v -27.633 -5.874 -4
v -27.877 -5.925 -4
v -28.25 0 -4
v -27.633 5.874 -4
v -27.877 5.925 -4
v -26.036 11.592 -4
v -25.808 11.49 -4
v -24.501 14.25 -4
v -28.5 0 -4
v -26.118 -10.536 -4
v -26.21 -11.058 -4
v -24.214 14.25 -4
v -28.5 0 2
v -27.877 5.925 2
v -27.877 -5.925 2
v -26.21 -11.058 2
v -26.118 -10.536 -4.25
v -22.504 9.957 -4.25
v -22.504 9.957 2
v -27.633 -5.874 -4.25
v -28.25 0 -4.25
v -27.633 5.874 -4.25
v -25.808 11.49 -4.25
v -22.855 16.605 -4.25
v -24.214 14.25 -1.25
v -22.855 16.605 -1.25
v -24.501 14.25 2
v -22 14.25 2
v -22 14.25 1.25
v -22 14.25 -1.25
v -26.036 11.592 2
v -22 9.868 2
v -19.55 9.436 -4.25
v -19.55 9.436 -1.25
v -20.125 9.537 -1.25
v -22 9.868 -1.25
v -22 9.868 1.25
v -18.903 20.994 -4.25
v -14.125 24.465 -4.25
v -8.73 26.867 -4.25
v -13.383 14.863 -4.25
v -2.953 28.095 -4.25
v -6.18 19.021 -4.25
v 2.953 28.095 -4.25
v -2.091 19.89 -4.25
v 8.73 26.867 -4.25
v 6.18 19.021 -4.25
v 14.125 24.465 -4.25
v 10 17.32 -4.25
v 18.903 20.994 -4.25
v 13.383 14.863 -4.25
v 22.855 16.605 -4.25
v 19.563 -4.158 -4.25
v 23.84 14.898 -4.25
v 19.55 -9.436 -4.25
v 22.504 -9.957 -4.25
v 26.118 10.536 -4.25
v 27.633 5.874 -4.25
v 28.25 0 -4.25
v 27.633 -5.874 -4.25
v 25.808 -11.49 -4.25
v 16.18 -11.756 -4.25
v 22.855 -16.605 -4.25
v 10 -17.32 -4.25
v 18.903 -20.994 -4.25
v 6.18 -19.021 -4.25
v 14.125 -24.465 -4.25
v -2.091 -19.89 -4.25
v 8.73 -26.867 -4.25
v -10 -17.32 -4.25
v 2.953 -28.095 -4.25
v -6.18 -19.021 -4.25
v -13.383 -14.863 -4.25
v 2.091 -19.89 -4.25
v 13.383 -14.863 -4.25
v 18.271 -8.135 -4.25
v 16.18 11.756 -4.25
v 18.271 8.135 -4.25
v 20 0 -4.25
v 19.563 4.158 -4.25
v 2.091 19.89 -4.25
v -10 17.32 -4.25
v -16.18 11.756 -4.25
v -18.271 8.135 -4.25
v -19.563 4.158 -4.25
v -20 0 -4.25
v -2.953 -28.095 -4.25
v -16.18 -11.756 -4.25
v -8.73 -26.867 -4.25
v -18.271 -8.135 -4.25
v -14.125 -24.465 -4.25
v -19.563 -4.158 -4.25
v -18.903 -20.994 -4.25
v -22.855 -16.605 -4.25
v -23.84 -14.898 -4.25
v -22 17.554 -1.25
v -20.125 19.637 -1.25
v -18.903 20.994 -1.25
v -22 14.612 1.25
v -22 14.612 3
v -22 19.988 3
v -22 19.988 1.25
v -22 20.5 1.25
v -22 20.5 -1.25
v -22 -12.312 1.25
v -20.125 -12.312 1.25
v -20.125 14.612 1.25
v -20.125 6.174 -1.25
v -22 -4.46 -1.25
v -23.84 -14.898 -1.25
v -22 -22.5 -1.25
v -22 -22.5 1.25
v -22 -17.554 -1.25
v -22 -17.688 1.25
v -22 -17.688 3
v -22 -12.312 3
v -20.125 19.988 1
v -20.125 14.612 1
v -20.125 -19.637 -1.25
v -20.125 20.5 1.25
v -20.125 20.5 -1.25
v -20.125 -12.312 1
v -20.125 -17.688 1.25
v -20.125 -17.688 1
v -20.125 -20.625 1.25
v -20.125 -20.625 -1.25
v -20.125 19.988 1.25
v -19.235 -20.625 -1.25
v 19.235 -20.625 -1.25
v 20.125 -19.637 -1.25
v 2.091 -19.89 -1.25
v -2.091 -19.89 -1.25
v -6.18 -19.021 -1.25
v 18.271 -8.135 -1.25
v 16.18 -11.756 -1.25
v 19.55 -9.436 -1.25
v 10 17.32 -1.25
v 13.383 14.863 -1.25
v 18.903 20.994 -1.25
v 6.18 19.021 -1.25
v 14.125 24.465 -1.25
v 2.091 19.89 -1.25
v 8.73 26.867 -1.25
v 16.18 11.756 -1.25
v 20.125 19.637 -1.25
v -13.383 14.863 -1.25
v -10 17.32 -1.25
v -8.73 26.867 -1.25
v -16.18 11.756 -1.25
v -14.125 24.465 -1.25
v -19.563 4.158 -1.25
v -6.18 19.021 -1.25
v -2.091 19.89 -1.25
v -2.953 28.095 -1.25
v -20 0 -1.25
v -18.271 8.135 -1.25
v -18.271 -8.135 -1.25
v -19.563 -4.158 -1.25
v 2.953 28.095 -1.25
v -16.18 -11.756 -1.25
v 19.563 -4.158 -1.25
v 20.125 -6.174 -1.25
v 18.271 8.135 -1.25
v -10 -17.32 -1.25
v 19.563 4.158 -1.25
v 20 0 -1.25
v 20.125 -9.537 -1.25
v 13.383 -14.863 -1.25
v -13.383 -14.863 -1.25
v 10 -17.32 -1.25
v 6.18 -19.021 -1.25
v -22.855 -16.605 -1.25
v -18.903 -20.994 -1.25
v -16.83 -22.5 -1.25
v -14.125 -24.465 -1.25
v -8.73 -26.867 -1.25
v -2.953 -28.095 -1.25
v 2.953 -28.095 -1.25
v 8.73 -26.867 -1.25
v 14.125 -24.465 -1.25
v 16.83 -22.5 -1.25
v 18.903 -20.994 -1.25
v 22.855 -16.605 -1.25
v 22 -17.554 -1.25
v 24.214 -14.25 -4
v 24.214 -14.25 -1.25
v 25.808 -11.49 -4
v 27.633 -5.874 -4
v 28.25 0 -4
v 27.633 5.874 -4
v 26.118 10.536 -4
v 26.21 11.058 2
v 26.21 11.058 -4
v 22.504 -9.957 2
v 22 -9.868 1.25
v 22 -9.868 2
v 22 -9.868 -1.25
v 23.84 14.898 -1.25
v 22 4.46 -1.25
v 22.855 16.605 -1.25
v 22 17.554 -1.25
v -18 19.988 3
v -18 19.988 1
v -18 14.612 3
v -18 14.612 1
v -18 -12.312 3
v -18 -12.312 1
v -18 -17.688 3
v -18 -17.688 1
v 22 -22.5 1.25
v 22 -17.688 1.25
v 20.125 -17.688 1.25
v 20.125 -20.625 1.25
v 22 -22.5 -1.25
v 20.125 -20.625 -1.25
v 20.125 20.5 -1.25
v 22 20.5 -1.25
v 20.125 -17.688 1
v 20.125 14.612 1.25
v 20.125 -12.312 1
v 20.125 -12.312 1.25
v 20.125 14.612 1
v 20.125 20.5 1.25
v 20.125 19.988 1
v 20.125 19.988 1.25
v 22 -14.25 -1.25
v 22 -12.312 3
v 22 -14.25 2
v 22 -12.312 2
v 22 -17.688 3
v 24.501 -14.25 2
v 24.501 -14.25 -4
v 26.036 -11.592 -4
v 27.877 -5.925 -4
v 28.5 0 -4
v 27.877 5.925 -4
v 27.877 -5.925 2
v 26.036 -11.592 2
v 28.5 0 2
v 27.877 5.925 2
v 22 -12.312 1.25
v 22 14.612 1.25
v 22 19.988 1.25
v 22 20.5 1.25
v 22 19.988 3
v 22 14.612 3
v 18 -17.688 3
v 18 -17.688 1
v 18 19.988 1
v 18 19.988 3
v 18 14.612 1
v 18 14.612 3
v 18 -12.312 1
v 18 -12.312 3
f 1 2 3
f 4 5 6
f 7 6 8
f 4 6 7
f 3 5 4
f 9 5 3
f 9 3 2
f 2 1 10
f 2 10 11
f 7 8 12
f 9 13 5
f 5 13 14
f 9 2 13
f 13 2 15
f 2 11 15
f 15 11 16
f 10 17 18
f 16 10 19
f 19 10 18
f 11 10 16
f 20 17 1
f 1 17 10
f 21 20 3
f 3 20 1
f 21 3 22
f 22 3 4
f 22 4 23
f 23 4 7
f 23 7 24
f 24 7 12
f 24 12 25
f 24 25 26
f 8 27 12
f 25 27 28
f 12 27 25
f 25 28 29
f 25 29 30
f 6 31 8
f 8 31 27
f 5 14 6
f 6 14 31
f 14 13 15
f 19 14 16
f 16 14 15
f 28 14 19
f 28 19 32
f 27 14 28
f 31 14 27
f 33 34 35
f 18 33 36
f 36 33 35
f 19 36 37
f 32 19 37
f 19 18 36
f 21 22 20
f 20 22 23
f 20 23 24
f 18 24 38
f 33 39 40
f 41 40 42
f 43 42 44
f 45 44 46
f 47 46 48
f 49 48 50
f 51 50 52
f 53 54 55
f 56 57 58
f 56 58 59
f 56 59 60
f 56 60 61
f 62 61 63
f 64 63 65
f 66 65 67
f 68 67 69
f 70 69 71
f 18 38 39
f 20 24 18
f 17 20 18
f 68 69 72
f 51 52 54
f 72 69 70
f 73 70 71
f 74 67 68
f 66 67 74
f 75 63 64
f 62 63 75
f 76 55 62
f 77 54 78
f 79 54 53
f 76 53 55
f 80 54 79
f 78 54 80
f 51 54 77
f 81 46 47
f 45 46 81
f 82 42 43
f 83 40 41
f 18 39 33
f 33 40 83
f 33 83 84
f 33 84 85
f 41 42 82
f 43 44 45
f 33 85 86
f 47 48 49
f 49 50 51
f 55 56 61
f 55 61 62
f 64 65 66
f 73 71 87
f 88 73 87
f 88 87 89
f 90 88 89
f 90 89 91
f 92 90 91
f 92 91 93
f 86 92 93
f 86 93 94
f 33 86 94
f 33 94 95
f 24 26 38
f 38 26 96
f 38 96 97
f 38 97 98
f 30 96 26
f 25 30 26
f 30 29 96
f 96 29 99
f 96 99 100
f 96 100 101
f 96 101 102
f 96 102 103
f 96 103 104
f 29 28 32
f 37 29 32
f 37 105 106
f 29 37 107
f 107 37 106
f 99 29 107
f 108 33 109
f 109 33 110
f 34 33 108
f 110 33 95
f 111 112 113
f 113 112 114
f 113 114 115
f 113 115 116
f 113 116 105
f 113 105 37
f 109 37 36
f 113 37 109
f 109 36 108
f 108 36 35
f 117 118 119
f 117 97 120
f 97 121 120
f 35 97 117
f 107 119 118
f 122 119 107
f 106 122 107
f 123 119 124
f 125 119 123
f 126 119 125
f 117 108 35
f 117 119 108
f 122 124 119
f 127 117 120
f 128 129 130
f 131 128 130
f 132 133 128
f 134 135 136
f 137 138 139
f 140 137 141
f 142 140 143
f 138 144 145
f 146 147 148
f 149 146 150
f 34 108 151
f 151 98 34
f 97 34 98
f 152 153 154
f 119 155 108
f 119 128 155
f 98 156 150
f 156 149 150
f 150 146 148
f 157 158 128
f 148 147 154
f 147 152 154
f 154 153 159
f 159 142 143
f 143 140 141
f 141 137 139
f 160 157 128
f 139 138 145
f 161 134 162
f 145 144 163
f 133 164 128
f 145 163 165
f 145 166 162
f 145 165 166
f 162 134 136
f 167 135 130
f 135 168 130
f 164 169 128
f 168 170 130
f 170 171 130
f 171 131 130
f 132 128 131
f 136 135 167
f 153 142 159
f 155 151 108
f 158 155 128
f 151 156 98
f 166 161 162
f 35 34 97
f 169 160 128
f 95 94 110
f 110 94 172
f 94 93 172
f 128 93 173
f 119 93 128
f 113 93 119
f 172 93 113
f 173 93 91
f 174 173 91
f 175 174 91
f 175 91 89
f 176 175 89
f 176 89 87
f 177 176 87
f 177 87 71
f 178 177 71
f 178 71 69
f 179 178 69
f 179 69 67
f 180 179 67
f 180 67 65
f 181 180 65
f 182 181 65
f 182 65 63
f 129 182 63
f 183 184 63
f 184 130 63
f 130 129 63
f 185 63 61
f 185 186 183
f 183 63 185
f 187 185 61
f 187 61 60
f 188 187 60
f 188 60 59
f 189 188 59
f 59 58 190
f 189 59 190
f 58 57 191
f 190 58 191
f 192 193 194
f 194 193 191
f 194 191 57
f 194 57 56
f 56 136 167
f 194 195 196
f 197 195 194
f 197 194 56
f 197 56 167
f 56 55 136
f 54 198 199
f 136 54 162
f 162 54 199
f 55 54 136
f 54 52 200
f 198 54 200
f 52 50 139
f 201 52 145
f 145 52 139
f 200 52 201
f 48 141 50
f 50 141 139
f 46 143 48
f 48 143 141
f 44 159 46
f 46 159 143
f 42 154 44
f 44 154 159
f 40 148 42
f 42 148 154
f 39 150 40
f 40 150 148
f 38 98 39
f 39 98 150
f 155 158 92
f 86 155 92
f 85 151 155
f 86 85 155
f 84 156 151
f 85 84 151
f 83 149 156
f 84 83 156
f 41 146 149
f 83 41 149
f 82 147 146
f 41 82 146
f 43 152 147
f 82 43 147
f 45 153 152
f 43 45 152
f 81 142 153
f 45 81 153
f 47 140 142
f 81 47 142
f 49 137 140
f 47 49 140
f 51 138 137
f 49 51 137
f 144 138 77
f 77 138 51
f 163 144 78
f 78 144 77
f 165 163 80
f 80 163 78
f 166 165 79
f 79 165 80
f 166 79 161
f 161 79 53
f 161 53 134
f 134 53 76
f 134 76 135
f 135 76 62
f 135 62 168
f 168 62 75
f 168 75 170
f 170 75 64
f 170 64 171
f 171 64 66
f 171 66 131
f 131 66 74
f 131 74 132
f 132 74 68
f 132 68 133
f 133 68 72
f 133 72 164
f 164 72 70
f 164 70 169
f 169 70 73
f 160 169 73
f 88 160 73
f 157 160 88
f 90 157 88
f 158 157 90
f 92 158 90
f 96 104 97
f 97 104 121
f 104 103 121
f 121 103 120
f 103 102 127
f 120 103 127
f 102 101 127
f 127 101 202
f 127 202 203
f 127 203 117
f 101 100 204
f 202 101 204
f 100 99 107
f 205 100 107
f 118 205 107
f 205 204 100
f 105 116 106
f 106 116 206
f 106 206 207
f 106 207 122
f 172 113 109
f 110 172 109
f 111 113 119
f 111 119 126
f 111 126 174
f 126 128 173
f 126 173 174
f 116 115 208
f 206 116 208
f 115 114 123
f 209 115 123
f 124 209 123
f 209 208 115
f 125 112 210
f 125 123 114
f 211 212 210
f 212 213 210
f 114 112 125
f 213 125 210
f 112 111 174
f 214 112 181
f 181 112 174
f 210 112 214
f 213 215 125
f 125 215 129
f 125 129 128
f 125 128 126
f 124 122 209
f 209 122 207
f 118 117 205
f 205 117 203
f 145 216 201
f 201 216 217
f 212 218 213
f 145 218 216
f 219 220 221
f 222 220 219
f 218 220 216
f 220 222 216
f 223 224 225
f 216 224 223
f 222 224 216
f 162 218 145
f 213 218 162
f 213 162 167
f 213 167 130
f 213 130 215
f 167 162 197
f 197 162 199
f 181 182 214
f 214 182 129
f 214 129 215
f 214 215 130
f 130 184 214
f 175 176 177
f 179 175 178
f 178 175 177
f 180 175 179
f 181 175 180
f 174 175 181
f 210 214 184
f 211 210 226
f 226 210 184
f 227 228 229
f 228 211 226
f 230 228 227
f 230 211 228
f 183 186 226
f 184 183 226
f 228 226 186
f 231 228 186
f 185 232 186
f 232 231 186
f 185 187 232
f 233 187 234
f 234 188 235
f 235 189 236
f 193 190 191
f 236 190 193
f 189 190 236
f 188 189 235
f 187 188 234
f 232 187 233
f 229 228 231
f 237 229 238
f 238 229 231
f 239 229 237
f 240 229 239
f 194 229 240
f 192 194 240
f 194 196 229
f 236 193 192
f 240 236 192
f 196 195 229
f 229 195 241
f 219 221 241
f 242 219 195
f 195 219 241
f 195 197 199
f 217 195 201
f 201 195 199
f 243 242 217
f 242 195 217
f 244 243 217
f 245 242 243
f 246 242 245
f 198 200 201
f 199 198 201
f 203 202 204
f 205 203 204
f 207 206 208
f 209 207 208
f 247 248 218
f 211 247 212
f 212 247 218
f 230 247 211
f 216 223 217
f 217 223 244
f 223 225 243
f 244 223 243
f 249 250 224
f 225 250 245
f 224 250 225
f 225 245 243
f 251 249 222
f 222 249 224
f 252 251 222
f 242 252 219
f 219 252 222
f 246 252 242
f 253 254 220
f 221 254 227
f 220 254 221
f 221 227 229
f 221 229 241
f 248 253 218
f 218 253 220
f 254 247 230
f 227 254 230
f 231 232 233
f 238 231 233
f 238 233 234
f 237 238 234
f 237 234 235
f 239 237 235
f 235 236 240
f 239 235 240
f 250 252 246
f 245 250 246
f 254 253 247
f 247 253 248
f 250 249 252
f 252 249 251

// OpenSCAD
gap = 0.25;
slide_width = 40;
slide_depth = 2.5;
slide_height = 41;
holder_thickness = 2;

holder_width = slide_width + ( holder_thickness * 2 );
holder_height = slide_height + holder_thickness;

retainer_height = holder_height / 8;

bokeh_outer_d = 57;
bokeh_outer_fudge = 0.25;
bokeh_outer_r = bokeh_outer_d / 2;
bokeh_inner_r = slide_width / 2;
bokeh_outer_h = 3;
bokeh_body_thickness = 3;



module slide() {
	color([0,0,1])cube([slide_width + gap, slide_height + gap, slide_depth + gap], center = true);
}


module slide_holder() {
	color([0,1,0])
	difference() {
		translate([0,-holder_thickness / 2, 0])cube([holder_width, holder_height, slide_depth], center = true);
		slide();
	}
	translate([0,17.3,0]) slide_retainer();
	translate([0,-15,0]) slide_retainer();
}

module slide_retainer() {
	translate([0,0,holder_thickness])
	color([0,1,0]) {
		difference(){
			cube([holder_width, retainer_height, holder_thickness], center = true);
			cube([holder_width - ( 4 * holder_thickness ), retainer_height + gap, holder_thickness + gap], center = true);
		}
	}
}

module bokeh_body() {
	translate([0,0,-bokeh_body_thickness + 0.25]) {
		cylinder(bokeh_body_thickness, bokeh_outer_r - bokeh_outer_fudge, bokeh_outer_r - bokeh_outer_fudge, center = true);
	}
	bokeh_body_grip();
}

module bokeh_body_grip(){
	difference() {
		translate([0,0,-1]) {
			cylinder(bokeh_body_thickness * 2, bokeh_outer_r, bokeh_outer_r, center = true);
		}
		difference(){
			cube([bokeh_outer_d,bokeh_outer_d, 10], center = true);
			cube([bokeh_outer_d,bokeh_outer_d / 2, 10], center = true);
		}
		rotate([0,0,-10])cube([holder_width, holder_height,10], center = true);
		cube([holder_width, holder_height,10], center = true);
	}
	
	
}

module bokeh_body_contractor() {
	translate([bokeh_outer_r - 4,10,0])rotate([0,0,-10])cube([3,40,10], center = true);
}

module bokeh(){
	difference(){
		bokeh_body();
		cylinder(10, bokeh_inner_r, bokeh_inner_r, center = true);
		bokeh_body_contractor();
		rotate([0,0,180])bokeh_body_contractor();

	}
}

union() {
	slide_holder();
	//slide();
	bokeh();
}
